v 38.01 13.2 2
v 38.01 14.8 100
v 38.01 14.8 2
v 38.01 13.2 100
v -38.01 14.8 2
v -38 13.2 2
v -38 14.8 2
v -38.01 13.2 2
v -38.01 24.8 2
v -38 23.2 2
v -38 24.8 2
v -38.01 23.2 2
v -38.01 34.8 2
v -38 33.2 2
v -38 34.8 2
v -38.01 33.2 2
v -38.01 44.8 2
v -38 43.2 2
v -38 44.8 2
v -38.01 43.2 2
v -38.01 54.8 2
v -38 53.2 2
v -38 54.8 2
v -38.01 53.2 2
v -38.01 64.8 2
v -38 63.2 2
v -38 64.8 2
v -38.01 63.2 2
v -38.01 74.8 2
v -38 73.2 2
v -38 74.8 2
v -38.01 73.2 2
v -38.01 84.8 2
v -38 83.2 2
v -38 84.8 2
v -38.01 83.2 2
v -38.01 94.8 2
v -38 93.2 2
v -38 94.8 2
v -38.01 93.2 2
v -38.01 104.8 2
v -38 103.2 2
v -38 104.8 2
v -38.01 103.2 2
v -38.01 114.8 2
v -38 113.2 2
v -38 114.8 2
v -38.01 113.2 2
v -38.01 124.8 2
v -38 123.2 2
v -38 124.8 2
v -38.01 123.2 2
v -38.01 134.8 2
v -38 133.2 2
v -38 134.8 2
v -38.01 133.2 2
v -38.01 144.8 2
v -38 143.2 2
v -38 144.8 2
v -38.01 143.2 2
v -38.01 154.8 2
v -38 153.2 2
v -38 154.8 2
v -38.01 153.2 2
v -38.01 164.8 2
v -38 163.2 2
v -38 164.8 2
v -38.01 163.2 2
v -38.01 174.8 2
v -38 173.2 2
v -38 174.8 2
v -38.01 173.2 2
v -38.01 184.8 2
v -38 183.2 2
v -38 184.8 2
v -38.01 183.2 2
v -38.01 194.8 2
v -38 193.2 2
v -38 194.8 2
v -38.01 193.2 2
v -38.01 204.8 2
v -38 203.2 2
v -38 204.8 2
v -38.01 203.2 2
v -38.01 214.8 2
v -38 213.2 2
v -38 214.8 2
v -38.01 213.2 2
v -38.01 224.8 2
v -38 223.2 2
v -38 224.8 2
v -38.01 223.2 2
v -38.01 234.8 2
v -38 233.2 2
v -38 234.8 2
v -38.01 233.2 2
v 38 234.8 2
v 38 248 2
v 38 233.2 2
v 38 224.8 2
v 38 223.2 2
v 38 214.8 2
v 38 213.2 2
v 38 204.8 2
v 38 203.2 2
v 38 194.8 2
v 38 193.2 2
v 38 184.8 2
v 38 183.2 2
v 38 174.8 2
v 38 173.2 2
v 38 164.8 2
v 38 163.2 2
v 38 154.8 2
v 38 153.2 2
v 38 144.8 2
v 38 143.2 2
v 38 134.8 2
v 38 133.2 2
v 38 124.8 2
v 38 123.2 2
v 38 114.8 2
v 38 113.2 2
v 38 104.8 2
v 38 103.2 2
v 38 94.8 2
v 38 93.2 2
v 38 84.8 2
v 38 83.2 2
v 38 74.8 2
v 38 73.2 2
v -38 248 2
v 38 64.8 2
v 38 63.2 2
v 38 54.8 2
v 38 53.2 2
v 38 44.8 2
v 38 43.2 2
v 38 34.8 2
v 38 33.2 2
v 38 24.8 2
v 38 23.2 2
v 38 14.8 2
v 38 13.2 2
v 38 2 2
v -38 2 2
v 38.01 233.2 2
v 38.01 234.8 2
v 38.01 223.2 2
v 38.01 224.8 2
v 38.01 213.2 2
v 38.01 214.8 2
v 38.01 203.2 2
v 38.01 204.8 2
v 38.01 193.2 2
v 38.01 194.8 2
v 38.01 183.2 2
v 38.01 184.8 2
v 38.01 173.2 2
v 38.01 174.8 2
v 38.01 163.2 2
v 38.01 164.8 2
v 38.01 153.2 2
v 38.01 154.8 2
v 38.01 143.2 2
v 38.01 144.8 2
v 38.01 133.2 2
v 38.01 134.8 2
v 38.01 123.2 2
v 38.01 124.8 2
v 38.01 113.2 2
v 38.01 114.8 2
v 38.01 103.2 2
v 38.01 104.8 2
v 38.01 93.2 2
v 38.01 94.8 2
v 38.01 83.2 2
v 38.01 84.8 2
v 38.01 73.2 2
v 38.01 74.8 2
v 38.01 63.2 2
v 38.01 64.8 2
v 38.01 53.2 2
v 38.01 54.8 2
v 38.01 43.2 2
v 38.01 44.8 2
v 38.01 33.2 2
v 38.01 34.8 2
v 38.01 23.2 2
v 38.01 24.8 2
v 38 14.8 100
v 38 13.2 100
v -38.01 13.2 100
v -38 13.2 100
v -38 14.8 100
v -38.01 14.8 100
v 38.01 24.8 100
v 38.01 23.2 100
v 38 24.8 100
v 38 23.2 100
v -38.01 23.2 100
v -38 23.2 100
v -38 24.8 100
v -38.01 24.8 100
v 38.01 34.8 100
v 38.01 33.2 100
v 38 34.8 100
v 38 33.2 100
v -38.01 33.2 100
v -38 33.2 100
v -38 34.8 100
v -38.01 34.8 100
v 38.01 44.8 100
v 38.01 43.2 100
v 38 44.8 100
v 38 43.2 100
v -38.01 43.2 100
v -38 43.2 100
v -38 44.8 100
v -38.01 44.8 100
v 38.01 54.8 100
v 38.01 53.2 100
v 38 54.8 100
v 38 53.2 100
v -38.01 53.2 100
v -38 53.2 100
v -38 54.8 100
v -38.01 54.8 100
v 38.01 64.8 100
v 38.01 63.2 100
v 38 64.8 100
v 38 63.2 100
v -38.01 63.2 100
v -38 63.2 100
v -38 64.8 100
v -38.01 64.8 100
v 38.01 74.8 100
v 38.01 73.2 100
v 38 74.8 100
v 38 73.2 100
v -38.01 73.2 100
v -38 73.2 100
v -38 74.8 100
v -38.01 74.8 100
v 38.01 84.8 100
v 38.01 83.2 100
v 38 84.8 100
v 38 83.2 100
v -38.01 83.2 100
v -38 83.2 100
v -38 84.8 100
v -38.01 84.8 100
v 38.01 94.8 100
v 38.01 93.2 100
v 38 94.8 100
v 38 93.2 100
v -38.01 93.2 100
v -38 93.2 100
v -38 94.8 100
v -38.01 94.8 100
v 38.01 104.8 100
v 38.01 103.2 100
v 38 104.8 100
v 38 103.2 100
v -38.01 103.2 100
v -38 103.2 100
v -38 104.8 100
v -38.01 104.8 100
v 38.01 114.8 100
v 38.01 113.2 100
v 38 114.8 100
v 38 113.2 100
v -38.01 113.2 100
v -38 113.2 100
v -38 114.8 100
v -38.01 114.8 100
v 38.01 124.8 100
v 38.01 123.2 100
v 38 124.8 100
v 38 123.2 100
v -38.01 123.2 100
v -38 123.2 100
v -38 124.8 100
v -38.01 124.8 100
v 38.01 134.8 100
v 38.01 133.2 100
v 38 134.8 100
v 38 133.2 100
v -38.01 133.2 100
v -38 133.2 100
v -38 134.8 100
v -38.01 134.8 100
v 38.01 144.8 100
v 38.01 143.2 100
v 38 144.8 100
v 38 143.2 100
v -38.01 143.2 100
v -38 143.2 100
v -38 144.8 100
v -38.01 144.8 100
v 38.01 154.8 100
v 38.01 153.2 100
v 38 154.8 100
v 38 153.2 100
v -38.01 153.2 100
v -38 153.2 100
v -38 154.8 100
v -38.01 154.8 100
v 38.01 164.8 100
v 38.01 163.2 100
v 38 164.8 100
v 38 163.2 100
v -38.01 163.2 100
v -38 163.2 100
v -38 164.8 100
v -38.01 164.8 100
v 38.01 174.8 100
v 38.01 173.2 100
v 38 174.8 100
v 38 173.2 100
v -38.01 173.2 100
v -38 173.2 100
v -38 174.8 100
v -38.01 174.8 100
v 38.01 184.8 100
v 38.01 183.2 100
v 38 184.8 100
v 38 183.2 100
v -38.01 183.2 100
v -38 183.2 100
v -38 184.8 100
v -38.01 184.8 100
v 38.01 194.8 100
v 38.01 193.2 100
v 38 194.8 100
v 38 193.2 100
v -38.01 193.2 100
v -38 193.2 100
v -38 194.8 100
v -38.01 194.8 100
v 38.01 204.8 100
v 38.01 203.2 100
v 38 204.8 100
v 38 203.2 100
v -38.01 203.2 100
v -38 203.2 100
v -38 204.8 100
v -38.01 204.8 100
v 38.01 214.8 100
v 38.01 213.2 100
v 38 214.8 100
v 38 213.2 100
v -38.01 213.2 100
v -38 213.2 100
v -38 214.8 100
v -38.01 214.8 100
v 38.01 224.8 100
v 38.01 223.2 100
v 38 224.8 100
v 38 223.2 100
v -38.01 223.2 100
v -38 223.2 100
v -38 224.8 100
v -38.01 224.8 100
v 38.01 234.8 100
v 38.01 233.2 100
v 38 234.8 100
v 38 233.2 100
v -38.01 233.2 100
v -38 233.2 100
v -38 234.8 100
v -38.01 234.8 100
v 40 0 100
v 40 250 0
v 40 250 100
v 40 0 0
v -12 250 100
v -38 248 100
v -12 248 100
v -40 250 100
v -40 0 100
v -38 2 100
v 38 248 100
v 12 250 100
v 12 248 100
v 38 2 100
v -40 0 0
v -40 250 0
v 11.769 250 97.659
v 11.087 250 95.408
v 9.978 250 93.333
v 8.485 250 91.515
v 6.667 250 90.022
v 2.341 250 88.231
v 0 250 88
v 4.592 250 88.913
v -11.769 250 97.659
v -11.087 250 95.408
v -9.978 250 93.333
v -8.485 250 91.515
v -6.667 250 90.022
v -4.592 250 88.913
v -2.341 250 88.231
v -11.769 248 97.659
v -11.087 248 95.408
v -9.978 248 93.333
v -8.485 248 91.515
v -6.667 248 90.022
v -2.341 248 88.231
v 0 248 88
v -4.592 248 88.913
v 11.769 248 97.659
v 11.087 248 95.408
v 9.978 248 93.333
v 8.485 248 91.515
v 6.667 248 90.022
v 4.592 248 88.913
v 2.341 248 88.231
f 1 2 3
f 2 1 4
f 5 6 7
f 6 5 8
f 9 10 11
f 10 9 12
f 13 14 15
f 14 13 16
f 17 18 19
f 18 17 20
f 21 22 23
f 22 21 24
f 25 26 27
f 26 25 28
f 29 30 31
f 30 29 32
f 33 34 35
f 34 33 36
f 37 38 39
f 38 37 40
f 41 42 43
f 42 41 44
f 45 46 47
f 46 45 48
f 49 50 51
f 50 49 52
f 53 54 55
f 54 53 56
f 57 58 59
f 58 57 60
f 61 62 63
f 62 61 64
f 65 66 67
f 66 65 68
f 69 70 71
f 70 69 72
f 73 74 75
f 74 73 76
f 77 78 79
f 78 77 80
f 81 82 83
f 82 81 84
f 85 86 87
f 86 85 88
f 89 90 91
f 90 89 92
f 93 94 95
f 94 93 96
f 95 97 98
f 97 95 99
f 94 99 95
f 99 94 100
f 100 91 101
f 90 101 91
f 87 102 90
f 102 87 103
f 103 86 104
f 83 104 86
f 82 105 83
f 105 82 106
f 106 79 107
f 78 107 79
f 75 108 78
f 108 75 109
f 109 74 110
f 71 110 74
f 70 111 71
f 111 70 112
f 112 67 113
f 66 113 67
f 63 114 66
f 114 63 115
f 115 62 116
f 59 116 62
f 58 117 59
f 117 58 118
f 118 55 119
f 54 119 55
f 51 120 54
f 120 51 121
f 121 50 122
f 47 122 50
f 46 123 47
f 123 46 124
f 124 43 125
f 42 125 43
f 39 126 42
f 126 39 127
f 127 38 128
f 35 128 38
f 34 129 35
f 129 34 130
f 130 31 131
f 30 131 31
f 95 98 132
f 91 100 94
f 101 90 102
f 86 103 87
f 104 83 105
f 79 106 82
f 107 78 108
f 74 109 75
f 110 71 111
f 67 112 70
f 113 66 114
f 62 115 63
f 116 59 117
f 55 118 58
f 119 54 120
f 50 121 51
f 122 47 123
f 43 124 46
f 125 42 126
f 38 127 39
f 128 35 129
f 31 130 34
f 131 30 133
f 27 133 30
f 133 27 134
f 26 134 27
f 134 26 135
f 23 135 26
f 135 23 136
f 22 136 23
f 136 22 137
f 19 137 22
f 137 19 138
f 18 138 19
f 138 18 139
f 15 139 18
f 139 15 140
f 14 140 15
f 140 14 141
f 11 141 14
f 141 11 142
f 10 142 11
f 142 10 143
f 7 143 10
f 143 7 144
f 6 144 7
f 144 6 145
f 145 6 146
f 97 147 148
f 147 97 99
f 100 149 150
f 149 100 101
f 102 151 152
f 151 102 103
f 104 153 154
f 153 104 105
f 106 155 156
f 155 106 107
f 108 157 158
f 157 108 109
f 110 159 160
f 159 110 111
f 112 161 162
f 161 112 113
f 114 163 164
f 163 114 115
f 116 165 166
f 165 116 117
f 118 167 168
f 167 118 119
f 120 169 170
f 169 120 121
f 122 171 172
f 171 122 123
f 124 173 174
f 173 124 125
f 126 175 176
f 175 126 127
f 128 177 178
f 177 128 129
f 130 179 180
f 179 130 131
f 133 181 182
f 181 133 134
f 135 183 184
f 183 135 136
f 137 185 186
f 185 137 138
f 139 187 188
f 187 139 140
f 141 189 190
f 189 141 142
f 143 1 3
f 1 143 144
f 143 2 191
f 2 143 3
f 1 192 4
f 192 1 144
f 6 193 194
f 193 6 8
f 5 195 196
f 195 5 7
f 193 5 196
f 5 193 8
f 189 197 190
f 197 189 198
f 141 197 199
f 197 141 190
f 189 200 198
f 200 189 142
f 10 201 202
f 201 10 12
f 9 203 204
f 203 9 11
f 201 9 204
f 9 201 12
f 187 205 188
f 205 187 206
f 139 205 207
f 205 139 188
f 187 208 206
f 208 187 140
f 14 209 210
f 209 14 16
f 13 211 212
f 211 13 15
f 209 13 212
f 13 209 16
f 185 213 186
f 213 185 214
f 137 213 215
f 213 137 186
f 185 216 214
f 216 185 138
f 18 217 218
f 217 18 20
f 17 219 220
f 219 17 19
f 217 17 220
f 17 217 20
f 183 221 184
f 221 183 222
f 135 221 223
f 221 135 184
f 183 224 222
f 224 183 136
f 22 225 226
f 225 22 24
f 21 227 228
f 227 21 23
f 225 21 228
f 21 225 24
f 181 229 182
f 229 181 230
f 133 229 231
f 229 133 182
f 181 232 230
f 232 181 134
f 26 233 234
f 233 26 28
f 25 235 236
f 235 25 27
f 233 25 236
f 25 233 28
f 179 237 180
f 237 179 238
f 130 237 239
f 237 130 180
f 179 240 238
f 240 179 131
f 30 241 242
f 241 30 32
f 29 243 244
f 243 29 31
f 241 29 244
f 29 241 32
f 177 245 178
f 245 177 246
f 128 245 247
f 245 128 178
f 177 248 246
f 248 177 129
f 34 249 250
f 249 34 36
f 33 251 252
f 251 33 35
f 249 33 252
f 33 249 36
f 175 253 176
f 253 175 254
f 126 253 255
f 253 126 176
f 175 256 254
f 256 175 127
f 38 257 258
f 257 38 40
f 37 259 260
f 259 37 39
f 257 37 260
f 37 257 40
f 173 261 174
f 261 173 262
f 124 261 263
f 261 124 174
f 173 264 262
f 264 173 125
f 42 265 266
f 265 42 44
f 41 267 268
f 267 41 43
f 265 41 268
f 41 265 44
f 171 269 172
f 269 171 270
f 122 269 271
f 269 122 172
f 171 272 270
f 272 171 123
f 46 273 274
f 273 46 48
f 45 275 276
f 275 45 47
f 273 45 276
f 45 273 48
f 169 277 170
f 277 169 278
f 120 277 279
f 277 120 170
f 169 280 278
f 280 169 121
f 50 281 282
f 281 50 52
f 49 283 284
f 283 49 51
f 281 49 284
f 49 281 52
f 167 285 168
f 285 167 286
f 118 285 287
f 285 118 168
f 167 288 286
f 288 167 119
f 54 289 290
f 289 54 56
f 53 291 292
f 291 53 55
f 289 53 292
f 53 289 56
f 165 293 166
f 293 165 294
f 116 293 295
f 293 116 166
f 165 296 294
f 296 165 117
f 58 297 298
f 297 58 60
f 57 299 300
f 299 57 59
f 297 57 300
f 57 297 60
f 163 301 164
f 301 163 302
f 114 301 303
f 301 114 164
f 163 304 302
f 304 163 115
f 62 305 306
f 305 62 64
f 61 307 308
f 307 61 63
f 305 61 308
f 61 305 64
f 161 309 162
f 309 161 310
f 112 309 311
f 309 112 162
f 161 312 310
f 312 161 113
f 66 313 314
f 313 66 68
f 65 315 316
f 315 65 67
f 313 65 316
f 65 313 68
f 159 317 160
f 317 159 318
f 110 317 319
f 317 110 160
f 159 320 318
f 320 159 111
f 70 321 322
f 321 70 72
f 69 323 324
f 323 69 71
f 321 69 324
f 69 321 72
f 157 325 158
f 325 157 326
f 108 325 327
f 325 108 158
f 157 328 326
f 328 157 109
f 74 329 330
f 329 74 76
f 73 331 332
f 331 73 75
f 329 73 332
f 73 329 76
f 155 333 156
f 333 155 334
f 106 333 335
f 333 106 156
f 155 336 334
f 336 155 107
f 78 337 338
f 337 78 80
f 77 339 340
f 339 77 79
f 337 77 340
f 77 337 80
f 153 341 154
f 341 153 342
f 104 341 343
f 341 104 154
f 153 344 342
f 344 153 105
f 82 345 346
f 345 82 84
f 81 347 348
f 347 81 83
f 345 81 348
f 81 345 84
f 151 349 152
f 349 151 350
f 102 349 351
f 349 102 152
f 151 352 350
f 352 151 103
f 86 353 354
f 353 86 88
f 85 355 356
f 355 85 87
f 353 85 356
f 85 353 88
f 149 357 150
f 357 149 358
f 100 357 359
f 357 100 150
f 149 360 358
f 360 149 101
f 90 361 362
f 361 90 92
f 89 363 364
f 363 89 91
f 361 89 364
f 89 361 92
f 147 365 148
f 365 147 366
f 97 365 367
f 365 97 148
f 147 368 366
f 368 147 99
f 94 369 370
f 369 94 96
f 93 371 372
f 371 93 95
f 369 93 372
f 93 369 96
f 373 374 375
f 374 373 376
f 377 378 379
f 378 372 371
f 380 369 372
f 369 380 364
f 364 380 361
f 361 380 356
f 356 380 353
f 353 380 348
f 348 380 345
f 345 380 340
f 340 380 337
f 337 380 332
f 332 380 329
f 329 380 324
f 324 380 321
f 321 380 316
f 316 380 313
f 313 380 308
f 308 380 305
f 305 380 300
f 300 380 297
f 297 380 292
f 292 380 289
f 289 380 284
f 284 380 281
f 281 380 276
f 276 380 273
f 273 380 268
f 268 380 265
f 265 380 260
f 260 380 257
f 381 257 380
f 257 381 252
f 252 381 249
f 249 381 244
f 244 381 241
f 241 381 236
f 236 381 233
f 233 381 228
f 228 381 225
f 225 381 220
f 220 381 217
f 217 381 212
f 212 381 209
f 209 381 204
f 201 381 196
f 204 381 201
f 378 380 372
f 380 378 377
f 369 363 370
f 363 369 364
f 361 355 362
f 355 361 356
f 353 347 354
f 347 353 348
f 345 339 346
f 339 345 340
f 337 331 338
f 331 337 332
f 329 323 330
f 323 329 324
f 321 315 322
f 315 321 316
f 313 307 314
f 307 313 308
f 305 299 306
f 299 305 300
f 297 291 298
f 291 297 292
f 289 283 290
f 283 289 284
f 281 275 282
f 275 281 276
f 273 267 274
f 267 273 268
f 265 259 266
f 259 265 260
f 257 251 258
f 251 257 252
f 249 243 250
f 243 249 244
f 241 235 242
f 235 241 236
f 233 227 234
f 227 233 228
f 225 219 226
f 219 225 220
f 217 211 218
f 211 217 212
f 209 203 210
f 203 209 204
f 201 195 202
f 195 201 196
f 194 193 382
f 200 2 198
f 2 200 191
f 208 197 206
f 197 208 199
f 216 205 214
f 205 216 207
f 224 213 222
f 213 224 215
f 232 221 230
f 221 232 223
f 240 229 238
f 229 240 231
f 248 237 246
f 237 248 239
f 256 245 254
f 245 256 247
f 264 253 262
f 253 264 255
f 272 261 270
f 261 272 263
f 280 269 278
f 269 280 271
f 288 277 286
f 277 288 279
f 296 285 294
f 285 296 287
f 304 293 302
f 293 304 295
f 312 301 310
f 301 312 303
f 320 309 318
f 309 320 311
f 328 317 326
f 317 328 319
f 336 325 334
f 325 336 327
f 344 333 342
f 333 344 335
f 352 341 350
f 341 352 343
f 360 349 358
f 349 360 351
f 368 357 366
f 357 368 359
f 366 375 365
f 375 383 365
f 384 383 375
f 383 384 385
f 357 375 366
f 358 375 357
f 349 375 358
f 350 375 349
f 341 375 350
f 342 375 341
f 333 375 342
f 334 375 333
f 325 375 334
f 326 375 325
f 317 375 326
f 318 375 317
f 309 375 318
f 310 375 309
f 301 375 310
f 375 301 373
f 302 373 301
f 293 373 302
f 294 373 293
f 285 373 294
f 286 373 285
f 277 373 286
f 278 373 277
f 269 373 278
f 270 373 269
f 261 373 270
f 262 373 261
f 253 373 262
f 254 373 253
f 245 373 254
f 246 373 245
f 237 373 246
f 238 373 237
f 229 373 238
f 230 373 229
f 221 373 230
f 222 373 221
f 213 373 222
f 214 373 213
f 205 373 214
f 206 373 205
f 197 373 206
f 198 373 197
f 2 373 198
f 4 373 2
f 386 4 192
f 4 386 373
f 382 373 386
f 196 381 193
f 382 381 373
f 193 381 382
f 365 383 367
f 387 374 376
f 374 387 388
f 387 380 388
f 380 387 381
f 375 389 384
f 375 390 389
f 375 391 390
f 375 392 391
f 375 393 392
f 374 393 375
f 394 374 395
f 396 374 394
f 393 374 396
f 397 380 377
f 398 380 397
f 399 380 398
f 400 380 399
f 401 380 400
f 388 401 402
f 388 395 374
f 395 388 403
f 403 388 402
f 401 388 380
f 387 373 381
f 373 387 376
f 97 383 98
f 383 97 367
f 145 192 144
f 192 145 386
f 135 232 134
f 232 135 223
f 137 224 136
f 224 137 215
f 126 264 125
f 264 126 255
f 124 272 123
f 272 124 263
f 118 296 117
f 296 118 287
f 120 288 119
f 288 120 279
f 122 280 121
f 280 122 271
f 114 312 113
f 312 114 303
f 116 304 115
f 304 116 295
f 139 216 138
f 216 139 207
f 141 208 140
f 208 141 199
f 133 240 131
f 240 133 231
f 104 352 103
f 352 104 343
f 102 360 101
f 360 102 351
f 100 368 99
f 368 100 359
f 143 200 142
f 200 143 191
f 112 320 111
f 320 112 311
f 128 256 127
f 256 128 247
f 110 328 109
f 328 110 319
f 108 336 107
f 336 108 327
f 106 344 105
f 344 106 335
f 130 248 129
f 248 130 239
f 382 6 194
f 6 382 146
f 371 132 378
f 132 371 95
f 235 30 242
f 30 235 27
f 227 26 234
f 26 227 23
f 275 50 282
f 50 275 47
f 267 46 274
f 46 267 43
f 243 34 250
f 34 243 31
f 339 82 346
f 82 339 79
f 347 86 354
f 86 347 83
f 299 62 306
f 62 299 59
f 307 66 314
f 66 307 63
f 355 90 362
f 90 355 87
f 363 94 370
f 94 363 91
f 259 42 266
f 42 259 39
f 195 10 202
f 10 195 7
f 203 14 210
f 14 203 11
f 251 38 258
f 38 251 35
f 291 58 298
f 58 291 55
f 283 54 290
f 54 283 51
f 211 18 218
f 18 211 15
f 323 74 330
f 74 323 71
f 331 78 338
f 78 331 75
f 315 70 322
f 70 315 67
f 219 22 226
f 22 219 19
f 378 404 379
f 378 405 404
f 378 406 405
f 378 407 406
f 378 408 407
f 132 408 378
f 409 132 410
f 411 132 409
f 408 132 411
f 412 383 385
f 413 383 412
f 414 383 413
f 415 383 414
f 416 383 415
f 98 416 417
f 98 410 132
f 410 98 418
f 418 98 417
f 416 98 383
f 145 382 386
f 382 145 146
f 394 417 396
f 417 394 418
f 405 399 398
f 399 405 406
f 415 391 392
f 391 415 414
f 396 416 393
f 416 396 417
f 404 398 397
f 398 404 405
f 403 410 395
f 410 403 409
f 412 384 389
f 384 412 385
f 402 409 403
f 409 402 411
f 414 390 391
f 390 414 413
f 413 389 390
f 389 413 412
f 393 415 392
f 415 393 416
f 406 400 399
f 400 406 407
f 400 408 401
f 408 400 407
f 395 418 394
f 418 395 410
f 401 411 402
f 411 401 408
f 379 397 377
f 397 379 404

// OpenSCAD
// Sorter drawer: the bin the sorter drops cards into, shaped to slide into the
// cubbies of Nic's storage shelf (MakerWorld "Modular TCG Card Storage", jimpf2000),
// with a 3 x 4 toploader pocket in the front for a display card, like "Card Catalog".
//
// The outside size (w, h, l) is the one thing that has to match the shelf's cubby, and
// it comes from enclosure.scad (dr_w, dr_h, dr_l), so set it there. The numbers here
// are PLACEHOLDERS until the drawer from the MakerWorld file has been measured.
//
// Cards drop in flat from above and pile up at the back. Divider grooves along the
// sides take the same card dividers as the shelf's own drawers, so once a drawer is
// full you can stand the cards up and file it.

part = "drawer";      // "drawer" or "front" (the front plate with the toploader pocket, printed flat)

w = 80;  h = 100;  l = 250;      // outside size, from enclosure.scad
wall = 2;
floor_t = 2;
groove_pitch = 10;    // divider grooves along the inside walls
groove_w = 1.6;
groove_d = 1;

// 3 x 4 toploader: 76.5 x 102.5 x 1.6 (most brands are within half a millimetre)
tl_w = 77;  tl_h = 103;  tl_t = 2.2;
window = [66, 92];    // what shows through the front

$fn = 32;

module rrect(w, l, r) { offset(r = r) offset(delta = -r) square([w, l], center = true); }

module body(w, h, l) {
    difference() {
        translate([-w / 2, 0, 0]) cube([w, l, h]);
        translate([-w / 2 + wall, wall, floor_t]) cube([w - 2 * wall, l - 2 * wall, h]);
        // divider grooves
        for (y = [wall + 12 : groove_pitch : l - wall - 12], m = [0, 1]) mirror([m, 0, 0])
            translate([w / 2 - wall - groove_d, y - groove_w / 2, floor_t]) cube([groove_d + 0.01, groove_w, h]);
        // finger notch at the back, so the pile is easy to lift out
        translate([0, l + 1, h]) rotate([90, 0, 0]) cylinder(r = 12, h = wall + 2);
    }
}

// The front plate is a separate part so the pocket can print flat and clean. It is
// glued (or screwed, 2 x M2) to the drawer's front wall and stands 2 mm proud of it.
module front_plate(w, h) {
    t = tl_t + 2 + 1.2;   // pocket depth + back wall + front wall
    difference() {
        translate([-w / 2, 0, 0]) linear_extrude(t) translate([w / 2, h / 2]) rrect(w, h, 3);
        // toploader pocket, open at the top
        translate([-tl_w / 2 - 0.5, 5, 1.2]) cube([tl_w + 1, h, tl_t]);
        // window
        translate([-window[0] / 2, 5 + (tl_h - window[1]) / 2, -1]) cube([window[0], window[1], 3]);
        // finger pull along the bottom edge
        translate([-14, -1, t - 1.2]) cube([28, 6, 3]);
    }
}

// What enclosure.scad draws in its preview.
module sorter_drawer_preview(w, h, l) {
    body(w, h, l);
    translate([0, 0, 0]) rotate([90, 0, 0]) front_plate(w, h);
    color("#9fb7c4", 0.7) translate([-tl_w / 2, -tl_t - 1.2, 5]) cube([tl_w, tl_t, tl_h]);
}

if (part == "drawer") body(w, h, l);
else if (part == "front") front_plate(w, h);
else sorter_drawer_preview(w, h, l);
